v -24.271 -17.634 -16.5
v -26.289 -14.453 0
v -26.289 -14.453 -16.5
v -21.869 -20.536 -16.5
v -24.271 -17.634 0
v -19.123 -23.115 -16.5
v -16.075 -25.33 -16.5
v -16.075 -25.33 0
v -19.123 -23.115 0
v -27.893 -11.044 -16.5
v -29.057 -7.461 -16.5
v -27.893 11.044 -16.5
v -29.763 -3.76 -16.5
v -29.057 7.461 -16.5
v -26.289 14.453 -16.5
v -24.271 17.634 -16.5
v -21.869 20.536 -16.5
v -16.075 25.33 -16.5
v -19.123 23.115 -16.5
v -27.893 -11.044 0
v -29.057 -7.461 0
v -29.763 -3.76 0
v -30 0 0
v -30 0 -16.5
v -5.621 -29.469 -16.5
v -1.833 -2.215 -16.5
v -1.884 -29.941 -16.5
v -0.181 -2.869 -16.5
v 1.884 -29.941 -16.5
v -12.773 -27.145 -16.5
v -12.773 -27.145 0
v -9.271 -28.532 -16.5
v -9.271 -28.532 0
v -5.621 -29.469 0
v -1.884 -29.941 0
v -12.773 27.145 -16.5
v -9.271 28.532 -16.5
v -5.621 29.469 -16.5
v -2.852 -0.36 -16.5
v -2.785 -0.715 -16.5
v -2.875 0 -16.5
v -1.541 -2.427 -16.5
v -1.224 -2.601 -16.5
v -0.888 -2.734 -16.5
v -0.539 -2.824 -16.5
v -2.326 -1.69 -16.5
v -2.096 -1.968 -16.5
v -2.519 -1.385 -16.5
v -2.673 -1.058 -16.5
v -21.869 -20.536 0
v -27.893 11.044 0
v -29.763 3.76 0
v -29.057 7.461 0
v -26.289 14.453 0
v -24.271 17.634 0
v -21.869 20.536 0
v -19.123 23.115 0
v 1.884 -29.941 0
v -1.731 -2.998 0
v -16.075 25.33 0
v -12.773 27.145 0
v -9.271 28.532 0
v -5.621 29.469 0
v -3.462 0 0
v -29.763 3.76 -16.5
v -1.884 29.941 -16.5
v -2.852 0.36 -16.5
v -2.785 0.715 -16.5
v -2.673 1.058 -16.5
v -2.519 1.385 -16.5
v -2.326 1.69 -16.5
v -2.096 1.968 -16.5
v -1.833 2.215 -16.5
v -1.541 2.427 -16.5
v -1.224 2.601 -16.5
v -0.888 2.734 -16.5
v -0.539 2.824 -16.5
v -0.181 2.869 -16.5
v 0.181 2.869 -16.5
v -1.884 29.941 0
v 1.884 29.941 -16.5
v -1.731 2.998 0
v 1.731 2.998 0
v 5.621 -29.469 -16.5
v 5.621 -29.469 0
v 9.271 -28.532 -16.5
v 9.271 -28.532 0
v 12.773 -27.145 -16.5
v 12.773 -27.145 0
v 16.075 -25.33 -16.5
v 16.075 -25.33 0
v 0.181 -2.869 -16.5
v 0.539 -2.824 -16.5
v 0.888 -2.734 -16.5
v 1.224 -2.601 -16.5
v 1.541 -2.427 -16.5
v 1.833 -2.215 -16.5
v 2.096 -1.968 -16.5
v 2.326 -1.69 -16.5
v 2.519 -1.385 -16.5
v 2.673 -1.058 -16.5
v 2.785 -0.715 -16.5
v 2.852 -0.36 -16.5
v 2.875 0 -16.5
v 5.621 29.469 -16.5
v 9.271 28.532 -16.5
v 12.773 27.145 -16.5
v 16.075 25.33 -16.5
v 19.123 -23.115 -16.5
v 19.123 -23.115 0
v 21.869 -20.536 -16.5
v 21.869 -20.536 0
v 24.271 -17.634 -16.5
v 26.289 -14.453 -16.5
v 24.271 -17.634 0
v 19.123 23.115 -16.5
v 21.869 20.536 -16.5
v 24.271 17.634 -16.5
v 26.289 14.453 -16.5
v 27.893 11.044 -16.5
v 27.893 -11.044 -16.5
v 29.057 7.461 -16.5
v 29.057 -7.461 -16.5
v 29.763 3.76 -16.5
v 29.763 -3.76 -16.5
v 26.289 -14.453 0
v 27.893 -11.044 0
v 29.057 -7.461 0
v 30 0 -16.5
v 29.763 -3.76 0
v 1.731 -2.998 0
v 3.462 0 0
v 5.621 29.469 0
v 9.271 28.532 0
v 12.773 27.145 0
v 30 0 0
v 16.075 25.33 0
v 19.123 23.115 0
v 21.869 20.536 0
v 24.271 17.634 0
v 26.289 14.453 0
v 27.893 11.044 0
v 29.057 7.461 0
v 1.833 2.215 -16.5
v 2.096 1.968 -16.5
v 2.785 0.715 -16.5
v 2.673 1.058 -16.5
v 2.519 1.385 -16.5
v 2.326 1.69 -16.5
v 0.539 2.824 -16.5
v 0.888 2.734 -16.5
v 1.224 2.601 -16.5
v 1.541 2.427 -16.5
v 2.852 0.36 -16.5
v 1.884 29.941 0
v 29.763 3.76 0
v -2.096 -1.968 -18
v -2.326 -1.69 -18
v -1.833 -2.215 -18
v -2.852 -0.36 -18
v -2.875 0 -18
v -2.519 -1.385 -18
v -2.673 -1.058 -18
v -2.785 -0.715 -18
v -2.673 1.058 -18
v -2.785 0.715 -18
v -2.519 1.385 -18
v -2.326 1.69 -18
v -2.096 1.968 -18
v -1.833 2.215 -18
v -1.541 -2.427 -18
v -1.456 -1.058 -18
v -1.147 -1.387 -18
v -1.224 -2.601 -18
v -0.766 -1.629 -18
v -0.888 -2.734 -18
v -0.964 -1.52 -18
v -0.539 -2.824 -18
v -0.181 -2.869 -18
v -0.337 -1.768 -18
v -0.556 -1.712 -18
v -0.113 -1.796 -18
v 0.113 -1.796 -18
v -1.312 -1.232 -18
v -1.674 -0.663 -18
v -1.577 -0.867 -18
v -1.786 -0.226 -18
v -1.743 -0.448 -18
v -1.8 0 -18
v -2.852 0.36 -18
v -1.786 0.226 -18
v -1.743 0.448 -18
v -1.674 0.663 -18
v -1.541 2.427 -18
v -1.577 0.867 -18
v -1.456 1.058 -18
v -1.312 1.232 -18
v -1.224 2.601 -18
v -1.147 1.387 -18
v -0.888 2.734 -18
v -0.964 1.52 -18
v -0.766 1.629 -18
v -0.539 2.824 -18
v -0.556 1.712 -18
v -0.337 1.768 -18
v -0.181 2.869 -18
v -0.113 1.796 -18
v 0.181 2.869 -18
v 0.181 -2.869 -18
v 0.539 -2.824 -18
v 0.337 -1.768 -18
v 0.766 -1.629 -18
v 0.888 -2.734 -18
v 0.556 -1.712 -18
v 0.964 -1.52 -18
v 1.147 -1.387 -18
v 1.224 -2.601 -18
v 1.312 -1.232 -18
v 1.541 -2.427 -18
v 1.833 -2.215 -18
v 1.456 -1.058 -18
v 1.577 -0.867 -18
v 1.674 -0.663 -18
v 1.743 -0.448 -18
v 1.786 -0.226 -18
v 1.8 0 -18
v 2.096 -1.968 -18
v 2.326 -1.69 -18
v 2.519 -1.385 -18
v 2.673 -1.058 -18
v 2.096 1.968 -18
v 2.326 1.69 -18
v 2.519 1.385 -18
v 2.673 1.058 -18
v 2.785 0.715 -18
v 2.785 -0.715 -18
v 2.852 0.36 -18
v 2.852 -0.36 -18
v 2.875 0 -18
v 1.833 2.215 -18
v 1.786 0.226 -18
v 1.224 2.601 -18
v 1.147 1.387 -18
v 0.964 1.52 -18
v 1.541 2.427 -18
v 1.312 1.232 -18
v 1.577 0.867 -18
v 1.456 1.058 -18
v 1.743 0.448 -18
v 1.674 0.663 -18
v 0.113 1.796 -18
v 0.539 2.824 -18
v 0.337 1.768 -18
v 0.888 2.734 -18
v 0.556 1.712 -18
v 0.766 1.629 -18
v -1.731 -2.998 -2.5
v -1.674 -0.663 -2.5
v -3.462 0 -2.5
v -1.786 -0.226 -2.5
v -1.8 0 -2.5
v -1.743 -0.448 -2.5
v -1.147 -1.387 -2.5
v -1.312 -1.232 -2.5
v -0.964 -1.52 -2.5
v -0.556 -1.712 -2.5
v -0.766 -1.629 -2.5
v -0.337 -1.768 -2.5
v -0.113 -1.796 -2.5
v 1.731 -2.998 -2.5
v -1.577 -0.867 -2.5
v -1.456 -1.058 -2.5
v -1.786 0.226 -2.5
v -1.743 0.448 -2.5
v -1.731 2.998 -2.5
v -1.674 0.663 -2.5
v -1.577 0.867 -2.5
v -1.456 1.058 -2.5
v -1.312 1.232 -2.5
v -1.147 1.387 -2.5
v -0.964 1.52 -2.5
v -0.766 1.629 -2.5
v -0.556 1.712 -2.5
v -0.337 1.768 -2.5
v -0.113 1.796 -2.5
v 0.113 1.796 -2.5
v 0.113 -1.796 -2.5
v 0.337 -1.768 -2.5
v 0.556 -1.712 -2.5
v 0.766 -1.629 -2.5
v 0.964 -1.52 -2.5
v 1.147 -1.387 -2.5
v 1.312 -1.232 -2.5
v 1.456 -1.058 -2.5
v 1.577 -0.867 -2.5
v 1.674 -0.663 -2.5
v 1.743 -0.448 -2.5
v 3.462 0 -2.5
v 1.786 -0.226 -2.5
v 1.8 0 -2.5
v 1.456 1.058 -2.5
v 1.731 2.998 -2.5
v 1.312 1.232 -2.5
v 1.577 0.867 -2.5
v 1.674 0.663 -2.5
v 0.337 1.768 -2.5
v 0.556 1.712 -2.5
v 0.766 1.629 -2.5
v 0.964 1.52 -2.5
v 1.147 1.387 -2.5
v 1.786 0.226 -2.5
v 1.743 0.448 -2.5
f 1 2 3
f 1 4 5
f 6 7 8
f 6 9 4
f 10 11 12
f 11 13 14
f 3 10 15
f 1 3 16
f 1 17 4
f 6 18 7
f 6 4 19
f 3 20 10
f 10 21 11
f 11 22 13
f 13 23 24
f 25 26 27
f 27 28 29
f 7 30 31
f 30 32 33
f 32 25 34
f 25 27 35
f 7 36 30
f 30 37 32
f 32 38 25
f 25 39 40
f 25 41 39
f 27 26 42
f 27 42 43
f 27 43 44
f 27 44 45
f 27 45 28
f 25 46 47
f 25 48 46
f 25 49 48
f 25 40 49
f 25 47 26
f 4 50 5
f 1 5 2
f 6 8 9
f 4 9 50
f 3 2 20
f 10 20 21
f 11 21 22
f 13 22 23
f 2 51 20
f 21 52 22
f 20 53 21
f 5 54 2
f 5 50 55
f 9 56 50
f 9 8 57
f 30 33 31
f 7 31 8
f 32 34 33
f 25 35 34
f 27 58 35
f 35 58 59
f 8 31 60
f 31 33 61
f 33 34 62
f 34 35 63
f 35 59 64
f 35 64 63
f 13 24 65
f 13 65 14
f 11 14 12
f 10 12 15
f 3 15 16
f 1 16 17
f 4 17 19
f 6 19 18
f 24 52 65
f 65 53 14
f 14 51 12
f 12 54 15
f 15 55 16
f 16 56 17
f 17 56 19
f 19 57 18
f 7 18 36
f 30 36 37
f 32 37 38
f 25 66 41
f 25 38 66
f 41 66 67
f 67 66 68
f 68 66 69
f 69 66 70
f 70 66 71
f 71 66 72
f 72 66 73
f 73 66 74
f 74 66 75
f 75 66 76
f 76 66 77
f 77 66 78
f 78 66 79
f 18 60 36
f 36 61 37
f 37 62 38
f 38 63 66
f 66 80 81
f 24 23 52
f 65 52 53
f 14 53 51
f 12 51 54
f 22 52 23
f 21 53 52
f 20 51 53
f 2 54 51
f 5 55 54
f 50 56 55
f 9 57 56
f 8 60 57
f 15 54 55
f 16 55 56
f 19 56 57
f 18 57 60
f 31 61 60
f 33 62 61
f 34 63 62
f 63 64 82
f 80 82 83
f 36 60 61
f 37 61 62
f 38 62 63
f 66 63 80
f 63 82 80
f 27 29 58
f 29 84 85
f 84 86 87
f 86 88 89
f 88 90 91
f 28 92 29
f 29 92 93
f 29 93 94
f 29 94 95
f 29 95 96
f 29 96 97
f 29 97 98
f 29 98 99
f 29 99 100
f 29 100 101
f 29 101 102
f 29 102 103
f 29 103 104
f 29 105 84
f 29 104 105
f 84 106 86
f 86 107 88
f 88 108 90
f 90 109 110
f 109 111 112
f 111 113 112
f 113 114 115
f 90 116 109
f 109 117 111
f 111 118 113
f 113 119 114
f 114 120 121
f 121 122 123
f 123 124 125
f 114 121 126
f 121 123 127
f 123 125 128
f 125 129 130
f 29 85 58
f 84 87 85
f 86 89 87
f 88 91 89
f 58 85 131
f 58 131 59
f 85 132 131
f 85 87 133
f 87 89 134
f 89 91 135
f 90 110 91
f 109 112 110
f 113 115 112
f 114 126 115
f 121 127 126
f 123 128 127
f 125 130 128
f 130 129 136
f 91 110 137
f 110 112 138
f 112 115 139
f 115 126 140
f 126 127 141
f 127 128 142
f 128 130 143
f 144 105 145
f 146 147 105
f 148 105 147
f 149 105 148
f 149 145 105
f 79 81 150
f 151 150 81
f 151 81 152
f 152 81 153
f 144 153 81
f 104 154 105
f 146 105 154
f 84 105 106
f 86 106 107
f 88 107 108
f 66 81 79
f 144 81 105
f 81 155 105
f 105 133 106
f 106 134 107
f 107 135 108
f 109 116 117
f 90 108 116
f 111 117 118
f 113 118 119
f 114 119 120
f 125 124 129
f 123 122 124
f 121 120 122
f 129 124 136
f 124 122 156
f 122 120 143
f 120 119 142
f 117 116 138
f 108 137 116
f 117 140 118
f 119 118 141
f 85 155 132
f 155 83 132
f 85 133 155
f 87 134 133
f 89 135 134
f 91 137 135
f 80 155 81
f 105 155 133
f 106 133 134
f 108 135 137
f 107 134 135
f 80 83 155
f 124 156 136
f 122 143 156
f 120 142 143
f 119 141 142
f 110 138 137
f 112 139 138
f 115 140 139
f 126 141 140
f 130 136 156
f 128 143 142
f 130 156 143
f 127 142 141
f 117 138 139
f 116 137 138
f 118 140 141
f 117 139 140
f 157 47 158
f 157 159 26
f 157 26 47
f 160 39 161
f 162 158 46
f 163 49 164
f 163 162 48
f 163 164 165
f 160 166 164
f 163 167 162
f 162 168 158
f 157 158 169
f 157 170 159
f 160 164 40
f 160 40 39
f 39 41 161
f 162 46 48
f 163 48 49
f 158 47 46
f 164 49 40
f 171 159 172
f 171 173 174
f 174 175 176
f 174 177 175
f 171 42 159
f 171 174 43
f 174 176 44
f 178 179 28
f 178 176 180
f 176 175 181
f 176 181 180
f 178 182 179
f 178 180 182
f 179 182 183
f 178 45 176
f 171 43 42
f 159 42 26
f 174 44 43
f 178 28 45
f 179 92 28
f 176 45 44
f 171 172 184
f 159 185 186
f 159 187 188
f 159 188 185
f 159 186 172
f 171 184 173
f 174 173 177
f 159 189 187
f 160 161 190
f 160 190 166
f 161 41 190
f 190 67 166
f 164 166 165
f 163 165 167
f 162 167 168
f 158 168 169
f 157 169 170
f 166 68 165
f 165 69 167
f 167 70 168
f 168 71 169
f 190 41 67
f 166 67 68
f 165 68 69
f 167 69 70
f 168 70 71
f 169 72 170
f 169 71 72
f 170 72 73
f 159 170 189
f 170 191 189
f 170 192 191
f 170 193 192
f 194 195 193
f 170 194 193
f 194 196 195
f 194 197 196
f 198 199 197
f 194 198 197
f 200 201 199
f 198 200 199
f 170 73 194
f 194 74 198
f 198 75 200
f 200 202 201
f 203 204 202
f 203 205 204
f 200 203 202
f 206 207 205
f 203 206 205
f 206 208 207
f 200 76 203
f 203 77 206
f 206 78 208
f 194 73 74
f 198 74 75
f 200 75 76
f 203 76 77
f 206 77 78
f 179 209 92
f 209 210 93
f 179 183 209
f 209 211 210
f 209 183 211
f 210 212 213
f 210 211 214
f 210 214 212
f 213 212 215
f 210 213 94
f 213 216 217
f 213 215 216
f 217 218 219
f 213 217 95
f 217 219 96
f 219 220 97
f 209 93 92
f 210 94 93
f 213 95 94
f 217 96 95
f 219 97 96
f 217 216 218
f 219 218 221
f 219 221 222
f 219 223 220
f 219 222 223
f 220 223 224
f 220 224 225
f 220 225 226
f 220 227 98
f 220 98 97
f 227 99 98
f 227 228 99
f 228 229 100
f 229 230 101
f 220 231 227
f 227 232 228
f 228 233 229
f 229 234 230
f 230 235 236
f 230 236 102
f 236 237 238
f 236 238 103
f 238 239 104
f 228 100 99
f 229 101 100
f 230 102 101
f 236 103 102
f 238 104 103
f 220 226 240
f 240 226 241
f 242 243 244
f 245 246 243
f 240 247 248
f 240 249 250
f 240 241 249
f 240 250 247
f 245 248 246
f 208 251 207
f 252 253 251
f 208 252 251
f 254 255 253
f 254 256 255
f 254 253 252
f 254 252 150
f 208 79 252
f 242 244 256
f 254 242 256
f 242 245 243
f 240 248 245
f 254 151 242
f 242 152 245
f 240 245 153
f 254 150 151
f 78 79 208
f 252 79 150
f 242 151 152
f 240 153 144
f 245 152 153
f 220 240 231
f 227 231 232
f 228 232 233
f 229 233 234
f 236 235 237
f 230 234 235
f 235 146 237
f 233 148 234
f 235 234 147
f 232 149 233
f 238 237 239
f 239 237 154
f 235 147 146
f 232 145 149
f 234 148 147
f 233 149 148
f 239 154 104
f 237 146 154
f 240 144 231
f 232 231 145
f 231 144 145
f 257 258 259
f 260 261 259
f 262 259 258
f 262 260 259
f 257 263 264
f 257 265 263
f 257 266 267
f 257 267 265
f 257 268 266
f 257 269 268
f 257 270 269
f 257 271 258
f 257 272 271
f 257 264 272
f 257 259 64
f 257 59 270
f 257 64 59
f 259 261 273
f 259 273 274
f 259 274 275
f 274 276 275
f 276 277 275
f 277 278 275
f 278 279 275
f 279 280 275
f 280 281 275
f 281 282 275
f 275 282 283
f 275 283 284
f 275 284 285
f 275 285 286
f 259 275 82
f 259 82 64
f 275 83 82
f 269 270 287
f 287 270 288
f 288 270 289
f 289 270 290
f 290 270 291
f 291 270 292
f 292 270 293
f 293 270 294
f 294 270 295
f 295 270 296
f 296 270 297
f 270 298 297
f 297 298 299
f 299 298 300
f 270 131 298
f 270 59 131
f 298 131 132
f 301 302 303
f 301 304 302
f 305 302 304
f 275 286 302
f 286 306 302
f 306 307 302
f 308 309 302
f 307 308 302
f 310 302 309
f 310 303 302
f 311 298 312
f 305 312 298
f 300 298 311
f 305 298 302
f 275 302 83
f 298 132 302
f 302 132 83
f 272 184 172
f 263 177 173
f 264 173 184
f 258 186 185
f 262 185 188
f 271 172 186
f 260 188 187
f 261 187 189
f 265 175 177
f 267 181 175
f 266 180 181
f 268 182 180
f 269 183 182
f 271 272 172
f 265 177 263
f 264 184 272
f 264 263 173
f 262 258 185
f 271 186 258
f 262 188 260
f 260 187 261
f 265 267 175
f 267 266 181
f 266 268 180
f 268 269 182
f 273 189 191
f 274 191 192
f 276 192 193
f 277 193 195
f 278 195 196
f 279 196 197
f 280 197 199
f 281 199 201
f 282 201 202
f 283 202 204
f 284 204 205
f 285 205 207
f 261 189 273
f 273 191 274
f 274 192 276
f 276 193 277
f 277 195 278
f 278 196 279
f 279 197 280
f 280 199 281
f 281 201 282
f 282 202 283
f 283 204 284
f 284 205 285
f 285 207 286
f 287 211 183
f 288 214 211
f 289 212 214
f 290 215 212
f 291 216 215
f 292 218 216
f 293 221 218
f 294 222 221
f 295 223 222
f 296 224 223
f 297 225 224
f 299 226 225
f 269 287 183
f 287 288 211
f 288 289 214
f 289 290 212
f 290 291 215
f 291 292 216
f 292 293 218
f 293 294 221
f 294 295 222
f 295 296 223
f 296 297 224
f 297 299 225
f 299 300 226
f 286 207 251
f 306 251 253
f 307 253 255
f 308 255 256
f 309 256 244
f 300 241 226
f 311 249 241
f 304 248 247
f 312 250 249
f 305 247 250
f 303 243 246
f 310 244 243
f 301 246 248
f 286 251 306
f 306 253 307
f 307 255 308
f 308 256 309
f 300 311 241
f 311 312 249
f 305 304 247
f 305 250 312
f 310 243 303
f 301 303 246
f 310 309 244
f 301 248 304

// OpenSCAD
$fn = 50;

difference() {
	union() {
		translate(v = [0, 0, -16.5]) {
			cylinder(h = 16.5, r = 30.0);
		}
		#translate(v = [0, 0, -18.0]) {
			cylinder(h = 18, r = 2.875);
		}
	}
	union() {
		translate(v = [0, 0, 0]) {
			rotate(a = [0, 0, 0]) {
				difference() {
					union() {
						translate(v = [0, 0, -2.5]) {
							linear_extrude(height = 2.5) {
								polygon(points = [[3.4619999999999997, 0.0], [1.7310000000000003, 2.9981799479017264], [-1.7309999999999992, 2.9981799479017264], [-3.4619999999999997, 4.2397272186481365e-16], [-1.7310000000000014, -2.998179947901726], [1.7309999999999977, -2.9981799479017277]]);
							}
						}
					}
					union();
				}
			}
		}
		#translate(v = [0, 0, -100.0]) {
			cylinder(h = 200, r = 1.8);
		}
	}
}
